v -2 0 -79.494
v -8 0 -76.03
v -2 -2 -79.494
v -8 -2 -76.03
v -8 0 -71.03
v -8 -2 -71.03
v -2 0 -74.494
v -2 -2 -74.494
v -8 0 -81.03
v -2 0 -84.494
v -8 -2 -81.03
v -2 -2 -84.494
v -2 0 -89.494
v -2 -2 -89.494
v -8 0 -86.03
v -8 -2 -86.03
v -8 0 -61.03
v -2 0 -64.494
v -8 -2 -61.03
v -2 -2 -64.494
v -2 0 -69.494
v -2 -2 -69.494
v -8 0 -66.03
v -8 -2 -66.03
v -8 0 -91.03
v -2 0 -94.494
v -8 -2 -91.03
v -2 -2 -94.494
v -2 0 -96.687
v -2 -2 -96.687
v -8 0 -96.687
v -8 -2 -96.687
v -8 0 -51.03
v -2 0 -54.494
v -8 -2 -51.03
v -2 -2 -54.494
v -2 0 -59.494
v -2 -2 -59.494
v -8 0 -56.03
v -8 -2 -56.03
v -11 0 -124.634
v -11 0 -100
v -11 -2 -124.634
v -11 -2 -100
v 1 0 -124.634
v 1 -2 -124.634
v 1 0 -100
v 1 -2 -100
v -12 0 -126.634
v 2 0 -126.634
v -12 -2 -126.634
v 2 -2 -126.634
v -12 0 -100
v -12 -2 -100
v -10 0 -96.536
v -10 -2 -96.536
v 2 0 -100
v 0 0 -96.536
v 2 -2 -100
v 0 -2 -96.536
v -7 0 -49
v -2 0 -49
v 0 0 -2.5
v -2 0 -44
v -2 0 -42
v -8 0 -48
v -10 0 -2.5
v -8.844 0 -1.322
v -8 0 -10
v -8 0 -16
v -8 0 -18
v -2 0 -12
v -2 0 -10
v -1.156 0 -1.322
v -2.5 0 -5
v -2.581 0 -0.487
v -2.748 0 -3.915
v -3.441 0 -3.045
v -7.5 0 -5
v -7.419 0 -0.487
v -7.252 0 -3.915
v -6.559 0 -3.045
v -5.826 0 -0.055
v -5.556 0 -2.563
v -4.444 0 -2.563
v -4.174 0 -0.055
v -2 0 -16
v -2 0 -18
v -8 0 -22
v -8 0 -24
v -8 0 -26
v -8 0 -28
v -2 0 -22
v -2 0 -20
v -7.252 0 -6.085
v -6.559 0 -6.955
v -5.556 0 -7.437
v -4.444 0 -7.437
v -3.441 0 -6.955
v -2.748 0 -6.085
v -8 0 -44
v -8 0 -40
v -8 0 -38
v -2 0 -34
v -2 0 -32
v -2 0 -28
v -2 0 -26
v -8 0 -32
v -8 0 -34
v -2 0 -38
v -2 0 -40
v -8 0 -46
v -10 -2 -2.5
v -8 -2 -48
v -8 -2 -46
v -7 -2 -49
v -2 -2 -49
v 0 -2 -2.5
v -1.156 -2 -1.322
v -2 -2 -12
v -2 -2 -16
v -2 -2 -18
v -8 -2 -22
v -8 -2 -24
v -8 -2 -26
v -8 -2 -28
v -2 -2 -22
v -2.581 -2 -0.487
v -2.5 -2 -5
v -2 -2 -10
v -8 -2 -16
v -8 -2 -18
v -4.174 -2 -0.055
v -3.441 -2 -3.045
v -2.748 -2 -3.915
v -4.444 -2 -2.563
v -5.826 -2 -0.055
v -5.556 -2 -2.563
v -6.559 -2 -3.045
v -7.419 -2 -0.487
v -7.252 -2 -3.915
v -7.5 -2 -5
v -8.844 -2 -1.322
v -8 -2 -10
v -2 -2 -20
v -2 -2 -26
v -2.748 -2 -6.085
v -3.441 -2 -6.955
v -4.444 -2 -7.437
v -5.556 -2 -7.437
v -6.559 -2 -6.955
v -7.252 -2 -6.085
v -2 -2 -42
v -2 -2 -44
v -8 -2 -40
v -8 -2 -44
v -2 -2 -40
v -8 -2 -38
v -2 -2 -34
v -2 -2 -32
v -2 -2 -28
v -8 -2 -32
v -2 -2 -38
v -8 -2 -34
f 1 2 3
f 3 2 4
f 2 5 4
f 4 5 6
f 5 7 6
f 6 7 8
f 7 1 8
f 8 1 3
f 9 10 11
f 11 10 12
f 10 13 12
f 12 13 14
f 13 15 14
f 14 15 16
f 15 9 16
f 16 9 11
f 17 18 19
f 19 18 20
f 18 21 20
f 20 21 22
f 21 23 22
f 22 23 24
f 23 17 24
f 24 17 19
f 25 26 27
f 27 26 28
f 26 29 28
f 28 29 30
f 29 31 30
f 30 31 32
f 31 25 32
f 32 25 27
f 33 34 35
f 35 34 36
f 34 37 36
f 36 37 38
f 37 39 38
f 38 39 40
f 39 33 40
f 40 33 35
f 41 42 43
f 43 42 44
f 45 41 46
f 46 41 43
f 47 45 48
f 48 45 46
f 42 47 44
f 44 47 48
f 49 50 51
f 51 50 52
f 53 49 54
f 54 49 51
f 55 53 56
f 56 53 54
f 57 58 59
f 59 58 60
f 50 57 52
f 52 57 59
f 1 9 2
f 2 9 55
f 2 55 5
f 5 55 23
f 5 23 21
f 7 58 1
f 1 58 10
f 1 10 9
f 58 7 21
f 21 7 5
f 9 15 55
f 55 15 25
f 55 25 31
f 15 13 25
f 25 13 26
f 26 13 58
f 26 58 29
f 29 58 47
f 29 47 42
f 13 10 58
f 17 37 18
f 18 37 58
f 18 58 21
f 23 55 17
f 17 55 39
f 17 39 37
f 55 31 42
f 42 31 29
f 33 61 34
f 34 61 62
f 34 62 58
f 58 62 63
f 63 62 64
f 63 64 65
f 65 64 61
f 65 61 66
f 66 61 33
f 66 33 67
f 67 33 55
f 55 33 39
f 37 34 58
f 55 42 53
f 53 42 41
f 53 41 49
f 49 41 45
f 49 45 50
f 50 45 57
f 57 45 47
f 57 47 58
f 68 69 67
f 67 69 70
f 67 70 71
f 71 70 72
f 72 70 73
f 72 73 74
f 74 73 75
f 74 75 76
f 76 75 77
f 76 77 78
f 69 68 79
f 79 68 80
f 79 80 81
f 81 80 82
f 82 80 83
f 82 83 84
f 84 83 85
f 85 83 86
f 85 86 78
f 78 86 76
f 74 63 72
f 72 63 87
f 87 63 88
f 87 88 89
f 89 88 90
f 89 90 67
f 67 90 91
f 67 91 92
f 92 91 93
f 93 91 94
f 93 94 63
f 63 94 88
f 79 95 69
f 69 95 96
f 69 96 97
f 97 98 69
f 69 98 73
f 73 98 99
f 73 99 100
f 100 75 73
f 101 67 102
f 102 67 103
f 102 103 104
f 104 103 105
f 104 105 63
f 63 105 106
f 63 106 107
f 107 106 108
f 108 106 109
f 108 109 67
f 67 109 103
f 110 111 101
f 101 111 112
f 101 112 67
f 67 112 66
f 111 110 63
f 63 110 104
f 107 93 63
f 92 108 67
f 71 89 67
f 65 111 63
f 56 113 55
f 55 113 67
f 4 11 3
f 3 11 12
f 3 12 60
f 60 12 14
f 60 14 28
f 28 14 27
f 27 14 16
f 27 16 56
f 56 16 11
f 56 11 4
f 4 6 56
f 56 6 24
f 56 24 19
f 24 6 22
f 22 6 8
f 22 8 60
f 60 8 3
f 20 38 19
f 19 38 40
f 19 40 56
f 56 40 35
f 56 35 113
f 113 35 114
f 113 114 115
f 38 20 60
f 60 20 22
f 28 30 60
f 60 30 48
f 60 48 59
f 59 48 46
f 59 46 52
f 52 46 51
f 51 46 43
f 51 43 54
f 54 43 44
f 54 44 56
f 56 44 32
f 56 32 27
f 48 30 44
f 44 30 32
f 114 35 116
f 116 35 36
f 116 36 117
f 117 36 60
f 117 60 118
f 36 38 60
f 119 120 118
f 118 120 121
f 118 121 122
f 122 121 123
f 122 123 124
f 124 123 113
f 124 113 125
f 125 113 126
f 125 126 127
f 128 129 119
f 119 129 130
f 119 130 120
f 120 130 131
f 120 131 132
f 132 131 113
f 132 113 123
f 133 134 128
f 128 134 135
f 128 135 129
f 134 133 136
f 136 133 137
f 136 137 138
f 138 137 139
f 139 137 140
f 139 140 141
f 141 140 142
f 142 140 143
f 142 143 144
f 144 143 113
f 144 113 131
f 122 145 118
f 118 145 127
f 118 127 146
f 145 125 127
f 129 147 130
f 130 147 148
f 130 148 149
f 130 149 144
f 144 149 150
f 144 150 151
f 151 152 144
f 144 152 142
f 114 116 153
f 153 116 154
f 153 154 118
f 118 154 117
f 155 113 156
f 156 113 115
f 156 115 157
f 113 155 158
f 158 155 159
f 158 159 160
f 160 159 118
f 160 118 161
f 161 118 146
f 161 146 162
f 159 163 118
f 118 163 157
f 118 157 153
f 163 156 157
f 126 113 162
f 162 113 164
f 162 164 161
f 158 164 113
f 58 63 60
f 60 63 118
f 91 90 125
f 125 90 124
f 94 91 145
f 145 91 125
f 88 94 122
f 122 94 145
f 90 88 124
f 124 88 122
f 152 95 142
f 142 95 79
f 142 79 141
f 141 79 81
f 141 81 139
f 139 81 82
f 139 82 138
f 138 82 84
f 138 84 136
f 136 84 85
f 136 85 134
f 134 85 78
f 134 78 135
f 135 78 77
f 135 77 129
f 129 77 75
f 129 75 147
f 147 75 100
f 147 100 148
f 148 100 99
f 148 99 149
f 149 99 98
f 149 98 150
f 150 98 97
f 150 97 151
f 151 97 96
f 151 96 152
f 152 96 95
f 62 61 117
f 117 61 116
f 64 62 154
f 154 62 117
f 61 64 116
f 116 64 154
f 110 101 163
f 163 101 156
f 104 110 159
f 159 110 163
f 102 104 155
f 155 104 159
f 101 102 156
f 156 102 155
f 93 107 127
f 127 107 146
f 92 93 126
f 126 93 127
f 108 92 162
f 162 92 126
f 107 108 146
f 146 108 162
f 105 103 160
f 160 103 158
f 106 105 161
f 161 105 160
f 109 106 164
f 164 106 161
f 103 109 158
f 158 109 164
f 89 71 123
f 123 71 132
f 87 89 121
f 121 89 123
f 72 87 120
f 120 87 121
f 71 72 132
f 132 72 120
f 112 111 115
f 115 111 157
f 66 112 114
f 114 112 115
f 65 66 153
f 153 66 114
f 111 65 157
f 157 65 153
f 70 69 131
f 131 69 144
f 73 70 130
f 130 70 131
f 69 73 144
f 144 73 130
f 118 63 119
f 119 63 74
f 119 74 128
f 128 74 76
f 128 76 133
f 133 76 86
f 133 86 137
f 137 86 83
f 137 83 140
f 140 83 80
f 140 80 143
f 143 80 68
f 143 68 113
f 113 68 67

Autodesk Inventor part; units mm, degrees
ref_plane "YZ Plane" through (0, 0, 0) normal (1, 0, 0) x (0, 1, 0)
ref_plane "XZ Plane" through (0, 0, 0) normal (0, 1, 0) x (-1, 0, 0)
ref_plane "XY Plane" through (0, 0, 0) normal (0, 0, 1) x (1, 0, 0)
sketch "Szkic3" plane through (0, 0, 0) normal (0, 1, 0) x (-1, 0, 0)
  line L0 (0, 0) -> (10, 0)
  line L1 (10, 0) -> (10, -50)
  line L2 (10, -50) -> (0, -50)
  line L3 (0, -50) -> (0, 0)
  circle A0 centre (5, -5) radius 2.5
  arc A1 (10, -2.5) -> (0, -2.5) centre (5, -6.25) ccw
  line L4 (8, -50) -> (2, -50)
  line L5 (2, -50) -> (2, -10)
  line L6 (2, -10) -> (8, -10)
  line L7 (8, -10) -> (8, -50)
  line L8 (2, -10) -> (8, -16)
  line L9 (2, -10) -> (10.4853, -10) construction
  line L10 (8, -16) -> (8, -18)
  line L11 (8, -18) -> (2, -12)
  line L12 (2, -10) -> (2, -12)
  line L13 (8, -18) -> (8, -22)
  line L14 (2, -16) -> (8, -22)
  line L15 (8, -24) -> (2, -18)
  line L16 (8, -16) -> (8, -14)
  line L17 (8, -24) -> (8, -26)
  line L18 (2, -20) -> (8, -26)
  line L19 (8, -28) -> (2, -22)
  line L20 (8, -28) -> (8, -32)
  line L21 (2, -26) -> (8, -32)
  line L22 (8, -34) -> (2, -28)
  line L23 (8, -34) -> (8, -36)
  line L24 (2, -26) -> (8, -32)
  line L25 (8, -34) -> (2, -28)
  line L26 (8, -34) -> (8, -38)
  line L27 (2, -32) -> (8, -38)
  line L28 (8, -40) -> (2, -34)
  line L29 (8, -40) -> (8, -42)
  line L30 (2, -32) -> (8, -38)
  line L31 (8, -40) -> (2, -34)
  line L32 (8, -40) -> (8, -44)
  line L33 (2, -38) -> (8, -44)
  line L34 (8, -46) -> (2, -40)
  line L35 (8, -46) -> (8, -48)
  line L36 (2, -38) -> (8, -44)
  line L37 (8, -46) -> (2, -40)
  line L38 (8, -46) -> (8, -50)
  line L39 (8, -46) -> (8, -48)
  line L40 (8, -48) -> (2, -42)
  line L41 (2, -42) -> (2, -44)
  line L42 (2, -44) -> (8, -50)
  line L43 (7, -49) -> (2, -49)
  circle A2 centre (5, -5) radius 3.25
  dimension "d9" = 10
  dimension "d10" = 50
  dimension "d11" = 5
  dimension "d12" = 6
  dimension "d13" = 40
  dimension "d14" = 45
  dimension "d15" = 2
  dimension "d16" = 4
  dimension "d17" = 2
  dimension "d18" = 2
  dimension "d19" = 2
  dimension "d20" = 2
  dimension "d21" = 4
  dimension "d22" = 2
  dimension "d23" = 2
  dimension "d24" = 2
  dimension "d25" = 4
  dimension "d26" = 2
  dimension "d27" = 2
  dimension "d28" = 2
  dimension "d29" = 4
  dimension "d30" = 2
  dimension "d32" = 2
  dimension "d36" = 2
  dimension "d37" = 2
  dimension "d42" = 6.5
extrude "Wyciągnięcie proste2" add sketch "Szkic3" against normal blind 2 contours A1 L1 L2 L7 L6 L5 L3 | L5 L43 L42 L2 | L42 L5 L40 L7 | L34 L5 L33 L7 | L28 L5 L27 L7 | L5 L21 L7 L22 | L5 L18 L7 L19 | L5 L14 L7 L15 | L5 L8 L7 L11 | A2
ref_plane "Płaszczyzna konstrukcyjna1" through (0, 0, -50) normal (0, 0, -1) x (-1, 0, 0)
mirror "Odbij1" about plane through (0, 0, -50) normal (0, 0, -1) of "Wyciągnięcie proste2"
sketch "Szkic4" plane through (0, 0, 0) normal (0, 1, 0) x (1, 0, 0)
  line L0 (-7.5, 91.0504) -> (-2.5, 91.0504)
  line L1 (-2.5, 91.0504) -> (-2.5, 98.6571)
  line L2 (-2.5, 98.6571) -> (-7.5, 98.6571)
  line L3 (-7.5, 98.6571) -> (-7.5, 91.0504)
  point P0 (0, 0)
extrude "Wyciągnięcie proste3" cut sketch "Szkic4" against normal blind 2
sketch "Szkic5" plane through (0, 0, 0) normal (0, 1, 0) x (1, 0, 0)
  line L0 (-10, 2.5) -> (-10, 97.5) projected
  line L1 (-10, 97.5) -> (-10, 67.5)
  line L2 (-10, 67.5) -> (-13, 67.5)
  line L3 (-13, 67.5) -> (-13, 97.5)
  line L4 (-13, 97.5) -> (-10, 97.5)
  arc A0 (0, 97.5) -> (-10, 97.5) centre (-5, 93.75) ccw projected
  line L5 (-5, 100) -> (-5, 49.8742)
  line L6 (-5, 100) -> (45.1258, 100) construction
  line L7 (-13, 67.5) -> (-10, 62.3038)
  line L8 (-13, 67.5) -> (-7, 67.5) construction
  line L9 (-10, 62.3038) -> (-10, 67.5)
  line L10 (0, 2.5) -> (0, 97.5)
  line L11 (0, 67.5) -> (3, 67.5)
  line L12 (3, 67.5) -> (3, 97.5)
  line L13 (3, 97.5) -> (0, 97.5)
  line L14 (3, 67.5) -> (0, 62.3038)
  arc A1 (3, 97.5) -> (-13, 97.5) centre (-5, 94.4495) ccw
  point P0 (0, 0)
  dimension "d43" = 30
  dimension "d44" = 3
  dimension "d45" = 90
  dimension "d46" = 60
extrude "Wyciągnięcie proste4" add sketch "Szkic5" against normal blind 2
sketch "Szkic6" plane through (0, 0, 0) normal (0, 1, 0) x (1, 0, 0)
  line L0 (-10, 62.3038) -> (-10, 2.5) projected
  line L1 (-10, 62.3038) -> (-10, 97.356)
  line L2 (-10, 97.356) -> (0, 97.356)
  line L3 (0, 97.356) -> (0, 62.3038)
  line L4 (0, 62.3038) -> (-10, 62.3038)
  point P0 (0, 0)
extrude "Wyciągnięcie proste5" cut sketch "Szkic6" against normal blind 2
sketch "Szkic7" plane through (0, 0, 0) normal (0, 1, 0) x (1, 0, 0)
  line L0 (-10, 62.3038) -> (-8, 62.3038) projected
  line L1 (-10, 62.3038) -> (-10, 67.4287)
  line L2 (-10, 62.3038) -> (-10, 97.356) projected
  line L3 (-10, 67.4287) -> (0, 67.4287)
  line L4 (0, 62.3038) -> (0, 97.356) projected
  line L5 (0, 62.3038) -> (0, 67.4287)
  line L6 (0, 62.3038) -> (-2, 62.3038) projected
  line L7 (-10, 2.5) -> (-10, 62.3038) projected
  line L8 (0, 62.3038) -> (-10, 62.3038)
  line L9 (-10, 62.3038) -> (-10, 61.2351)
  line L10 (-10, 61.2351) -> (0, 61.2351)
  line L11 (0, 61.2351) -> (0, 62.3038)
  line L12 (-10, 61.2351) -> (0, 61.2351)
  line L13 (0, 2.5) -> (0, 62.3038) projected
  line L14 (0, 61.2351) -> (0, 67.4287)
  line L15 (0, 67.4287) -> (-10, 67.4287)
  line L16 (-10, 61.2351) -> (-10, 67.4287)
  point P0 (0, 0)
extrude "Wyciągnięcie proste6" add sketch "Szkic7" against normal blind 2
sketch "Szkic8" plane through (0, 0, 0) normal (0, 1, 0) x (1, 0, 0)
  line L0 (-7.5, 97.356) -> (-10, 97.356) projected
  line L1 (-10, 97.356) -> (-11, 97.356)
  line L2 (-11, 97.356) -> (-11, 67.4287)
  line L3 (-11, 67.4287) -> (-10, 67.4287)
  line L4 (-10, 67.4287) -> (-10, 97.356)
  line L5 (0, 97.356) -> (1, 97.356)
  line L6 (1, 97.356) -> (1, 67.4287)
  line L7 (1, 67.4287) -> (0, 67.4287)
  line L8 (0, 67.4287) -> (0, 97.356)
  line L9 (-11, 67.4287) -> (1, 67.4287)
  line L10 (1, 67.4287) -> (1, 72.7222)
  line L11 (1, 72.7222) -> (-11, 72.7222)
  line L12 (-11, 72.7222) -> (-11, 67.4287)
  point P0 (0, 0)
  point P1 (0, 72.7222)
  point P2 (-10, 72.7222)
  dimension "d53" = 1
  dimension "d54" = 1
extrude "Wyciągnięcie proste7" cut sketch "Szkic8" against normal blind 2 contours L4 L11 L2 L1 | L8 L5 L6 L11
sketch "Szkic9" plane through (0, 0, 0) normal (0, 1, 0) x (1, 0, 0)
  line L0 (-10, 72.7222) -> (0, 72.7222)
  line L1 (0, 72.7222) -> (0, 67.3617)
  line L2 (0, 67.3617) -> (-10, 67.3617)
  line L3 (-10, 67.3617) -> (-10, 72.7222)
  point P0 (0, 0)
extrude "Wyciągnięcie proste8" add sketch "Szkic9" against normal blind 2
sketch "Szkic10" plane through (0, 0, 0) normal (0, 1, 0) x (1, 0, 0)
  point P0 (0, 0)
split "Podział1" plane through (0, 0, -50) removes the side toward (0, 0, -1)
sketch "Szkic11" plane through (0, 0, 0) normal (0, 1, 0) x (1, 0, 0)
  line L0 (-10, 2.5) -> (-10, 50) projected
  line L1 (-10, 50) -> (0, 50)
  line L2 (0, 50) -> (0, 100)
  line L3 (0, 100) -> (-10, 100)
  line L4 (-10, 100) -> (-10, 50)
  line L5 (-10, 100) -> (0, 100)
  line L6 (0, 100) -> (0, 124.634)
  line L7 (0, 124.634) -> (-10, 124.634)
  line L8 (-10, 124.634) -> (-10, 100)
  line L9 (-10, 124.634) -> (-11, 124.634)
  line L10 (-11, 124.634) -> (-11, 100)
  line L11 (-11, 100) -> (-10, 100)
  line L12 (-10, 100) -> (-10, 124.634)
  line L13 (0, 124.634) -> (1, 124.634)
  line L14 (1, 124.634) -> (1, 100)
  line L15 (1, 100) -> (0, 100)
  line L16 (0, 100) -> (0, 124.634)
  line L17 (-11, 100) -> (-9, 100) construction
  line L18 (1, 100) -> (3, 100) construction
  line L19 (-11, 124.634) -> (1, 124.634)
  line L20 (1, 124.634) -> (1, 126.634)
  line L21 (1, 126.634) -> (-11, 126.634)
  line L22 (-11, 126.634) -> (-11, 124.634)
  line L23 (-11, 100) -> (-12, 100)
  line L24 (-12, 100) -> (-12, 126.634)
  line L25 (-12, 126.634) -> (-11, 126.634)
  line L26 (-11, 126.634) -> (-11, 100)
  line L27 (1, 126.634) -> (2, 126.634)
  line L28 (2, 126.634) -> (2, 100)
  line L29 (2, 100) -> (1, 100)
  line L30 (1, 100) -> (1, 126.634)
  line L31 (-12, 100) -> (-10, 96.5359)
  line L32 (-12, 100) -> (-8, 100) construction
  line L33 (2, 100) -> (0, 96.5359)
  line L34 (2, 100) -> (6, 100) construction
  point P0 (0, 0)
  dimension "d59" = 10
  dimension "d60" = 50
  dimension "d61" = 10
  dimension "d62" = 24.634
  dimension "d63" = 1
  dimension "d64" = 1
  dimension "d67" = 2
  dimension "d68" = 1
  dimension "d69" = 1
  dimension "d70" = 60
  dimension "d71" = 120
extrude "Wyciągnięcie proste9" add sketch "Szkic11" against normal blind 2 contours L4 L3 L2 L1 | L31 L23 L11 L4 | L2 L15 L29 L33 | L24 L25 L22 L10 L23 | L29 L14 L20 L27 L28 | L9 L22 L21 L20 L13 L7
sketch "Szkic12" plane through (0, 0, 0) normal (0, 1, 0) x (1, 0, 0)
  line L0 (-8, 51.0298) -> (-2, 51.0298)
  line L1 (-2, 51.0298) -> (-2, 96.6875)
  line L2 (-2, 96.6875) -> (-8, 96.6875)
  line L3 (-8, 96.6875) -> (-8, 51.0298)
  line L4 (-8, 51.0298) -> (-2, 54.4939)
  line L5 (-8, 51.0298) -> (-1.0718, 51.0298) construction
  line L6 (-2, 54.4939) -> (-2, 59.4939)
  line L7 (-2, 59.4939) -> (-8, 56.0298)
  line L8 (-8, 51.0298) -> (-8, 56.0298)
  line L9 (-8, 56.0298) -> (-8, 61.0298)
  line L10 (-8, 61.0298) -> (-2, 64.4939)
  line L11 (-2, 64.4939) -> (-2, 69.4939)
  line L12 (-2, 69.4939) -> (-8, 66.0298)
  line L13 (-8, 61.0298) -> (-8, 66.0298)
  line L14 (-8, 66.0298) -> (-2, 69.4939)
  line L15 (-2, 74.4939) -> (-8, 71.0298)
  line L16 (-8, 76.0298) -> (-2, 79.4939)
  line L17 (-2, 84.4939) -> (-8, 81.0298)
  line L18 (-8, 71.0298) -> (-2, 74.4939)
  line L19 (-2, 79.4939) -> (-8, 76.0298)
  line L20 (-8, 81.0298) -> (-2, 84.4939)
  line L21 (-2, 89.4939) -> (-8, 86.0298)
  line L22 (-8, 76.0298) -> (-2, 79.4939)
  line L23 (-2, 84.4939) -> (-8, 81.0298)
  line L24 (-8, 86.0298) -> (-2, 89.4939)
  line L25 (-2, 94.4939) -> (-8, 91.0298)
  point P0 (0, 0)
  dimension "d74" = 30
  dimension "d75" = 5
  dimension "d76" = 5
  dimension "d77" = 5
  dimension "d78" = 5
  dimension "d79" = 5
  dimension "d80" = 5
  dimension "d81" = 5
  dimension "d82" = 5
  dimension "d83" = 5
  dimension "d84" = 5
  dimension "d85" = 5
  dimension "d86" = 5
extrude "Wyciągnięcie proste10" cut sketch "Szkic12" against normal blind 2 contours L3 L7 L1 L4 | L3 L12 L1 L10 | L3 L16 L1 L15 | L3 L21 L1 L17 | L3 L2 L1 L25
properties part number "arm_v1(bez_dokladnych_otworow_montazowych)"
